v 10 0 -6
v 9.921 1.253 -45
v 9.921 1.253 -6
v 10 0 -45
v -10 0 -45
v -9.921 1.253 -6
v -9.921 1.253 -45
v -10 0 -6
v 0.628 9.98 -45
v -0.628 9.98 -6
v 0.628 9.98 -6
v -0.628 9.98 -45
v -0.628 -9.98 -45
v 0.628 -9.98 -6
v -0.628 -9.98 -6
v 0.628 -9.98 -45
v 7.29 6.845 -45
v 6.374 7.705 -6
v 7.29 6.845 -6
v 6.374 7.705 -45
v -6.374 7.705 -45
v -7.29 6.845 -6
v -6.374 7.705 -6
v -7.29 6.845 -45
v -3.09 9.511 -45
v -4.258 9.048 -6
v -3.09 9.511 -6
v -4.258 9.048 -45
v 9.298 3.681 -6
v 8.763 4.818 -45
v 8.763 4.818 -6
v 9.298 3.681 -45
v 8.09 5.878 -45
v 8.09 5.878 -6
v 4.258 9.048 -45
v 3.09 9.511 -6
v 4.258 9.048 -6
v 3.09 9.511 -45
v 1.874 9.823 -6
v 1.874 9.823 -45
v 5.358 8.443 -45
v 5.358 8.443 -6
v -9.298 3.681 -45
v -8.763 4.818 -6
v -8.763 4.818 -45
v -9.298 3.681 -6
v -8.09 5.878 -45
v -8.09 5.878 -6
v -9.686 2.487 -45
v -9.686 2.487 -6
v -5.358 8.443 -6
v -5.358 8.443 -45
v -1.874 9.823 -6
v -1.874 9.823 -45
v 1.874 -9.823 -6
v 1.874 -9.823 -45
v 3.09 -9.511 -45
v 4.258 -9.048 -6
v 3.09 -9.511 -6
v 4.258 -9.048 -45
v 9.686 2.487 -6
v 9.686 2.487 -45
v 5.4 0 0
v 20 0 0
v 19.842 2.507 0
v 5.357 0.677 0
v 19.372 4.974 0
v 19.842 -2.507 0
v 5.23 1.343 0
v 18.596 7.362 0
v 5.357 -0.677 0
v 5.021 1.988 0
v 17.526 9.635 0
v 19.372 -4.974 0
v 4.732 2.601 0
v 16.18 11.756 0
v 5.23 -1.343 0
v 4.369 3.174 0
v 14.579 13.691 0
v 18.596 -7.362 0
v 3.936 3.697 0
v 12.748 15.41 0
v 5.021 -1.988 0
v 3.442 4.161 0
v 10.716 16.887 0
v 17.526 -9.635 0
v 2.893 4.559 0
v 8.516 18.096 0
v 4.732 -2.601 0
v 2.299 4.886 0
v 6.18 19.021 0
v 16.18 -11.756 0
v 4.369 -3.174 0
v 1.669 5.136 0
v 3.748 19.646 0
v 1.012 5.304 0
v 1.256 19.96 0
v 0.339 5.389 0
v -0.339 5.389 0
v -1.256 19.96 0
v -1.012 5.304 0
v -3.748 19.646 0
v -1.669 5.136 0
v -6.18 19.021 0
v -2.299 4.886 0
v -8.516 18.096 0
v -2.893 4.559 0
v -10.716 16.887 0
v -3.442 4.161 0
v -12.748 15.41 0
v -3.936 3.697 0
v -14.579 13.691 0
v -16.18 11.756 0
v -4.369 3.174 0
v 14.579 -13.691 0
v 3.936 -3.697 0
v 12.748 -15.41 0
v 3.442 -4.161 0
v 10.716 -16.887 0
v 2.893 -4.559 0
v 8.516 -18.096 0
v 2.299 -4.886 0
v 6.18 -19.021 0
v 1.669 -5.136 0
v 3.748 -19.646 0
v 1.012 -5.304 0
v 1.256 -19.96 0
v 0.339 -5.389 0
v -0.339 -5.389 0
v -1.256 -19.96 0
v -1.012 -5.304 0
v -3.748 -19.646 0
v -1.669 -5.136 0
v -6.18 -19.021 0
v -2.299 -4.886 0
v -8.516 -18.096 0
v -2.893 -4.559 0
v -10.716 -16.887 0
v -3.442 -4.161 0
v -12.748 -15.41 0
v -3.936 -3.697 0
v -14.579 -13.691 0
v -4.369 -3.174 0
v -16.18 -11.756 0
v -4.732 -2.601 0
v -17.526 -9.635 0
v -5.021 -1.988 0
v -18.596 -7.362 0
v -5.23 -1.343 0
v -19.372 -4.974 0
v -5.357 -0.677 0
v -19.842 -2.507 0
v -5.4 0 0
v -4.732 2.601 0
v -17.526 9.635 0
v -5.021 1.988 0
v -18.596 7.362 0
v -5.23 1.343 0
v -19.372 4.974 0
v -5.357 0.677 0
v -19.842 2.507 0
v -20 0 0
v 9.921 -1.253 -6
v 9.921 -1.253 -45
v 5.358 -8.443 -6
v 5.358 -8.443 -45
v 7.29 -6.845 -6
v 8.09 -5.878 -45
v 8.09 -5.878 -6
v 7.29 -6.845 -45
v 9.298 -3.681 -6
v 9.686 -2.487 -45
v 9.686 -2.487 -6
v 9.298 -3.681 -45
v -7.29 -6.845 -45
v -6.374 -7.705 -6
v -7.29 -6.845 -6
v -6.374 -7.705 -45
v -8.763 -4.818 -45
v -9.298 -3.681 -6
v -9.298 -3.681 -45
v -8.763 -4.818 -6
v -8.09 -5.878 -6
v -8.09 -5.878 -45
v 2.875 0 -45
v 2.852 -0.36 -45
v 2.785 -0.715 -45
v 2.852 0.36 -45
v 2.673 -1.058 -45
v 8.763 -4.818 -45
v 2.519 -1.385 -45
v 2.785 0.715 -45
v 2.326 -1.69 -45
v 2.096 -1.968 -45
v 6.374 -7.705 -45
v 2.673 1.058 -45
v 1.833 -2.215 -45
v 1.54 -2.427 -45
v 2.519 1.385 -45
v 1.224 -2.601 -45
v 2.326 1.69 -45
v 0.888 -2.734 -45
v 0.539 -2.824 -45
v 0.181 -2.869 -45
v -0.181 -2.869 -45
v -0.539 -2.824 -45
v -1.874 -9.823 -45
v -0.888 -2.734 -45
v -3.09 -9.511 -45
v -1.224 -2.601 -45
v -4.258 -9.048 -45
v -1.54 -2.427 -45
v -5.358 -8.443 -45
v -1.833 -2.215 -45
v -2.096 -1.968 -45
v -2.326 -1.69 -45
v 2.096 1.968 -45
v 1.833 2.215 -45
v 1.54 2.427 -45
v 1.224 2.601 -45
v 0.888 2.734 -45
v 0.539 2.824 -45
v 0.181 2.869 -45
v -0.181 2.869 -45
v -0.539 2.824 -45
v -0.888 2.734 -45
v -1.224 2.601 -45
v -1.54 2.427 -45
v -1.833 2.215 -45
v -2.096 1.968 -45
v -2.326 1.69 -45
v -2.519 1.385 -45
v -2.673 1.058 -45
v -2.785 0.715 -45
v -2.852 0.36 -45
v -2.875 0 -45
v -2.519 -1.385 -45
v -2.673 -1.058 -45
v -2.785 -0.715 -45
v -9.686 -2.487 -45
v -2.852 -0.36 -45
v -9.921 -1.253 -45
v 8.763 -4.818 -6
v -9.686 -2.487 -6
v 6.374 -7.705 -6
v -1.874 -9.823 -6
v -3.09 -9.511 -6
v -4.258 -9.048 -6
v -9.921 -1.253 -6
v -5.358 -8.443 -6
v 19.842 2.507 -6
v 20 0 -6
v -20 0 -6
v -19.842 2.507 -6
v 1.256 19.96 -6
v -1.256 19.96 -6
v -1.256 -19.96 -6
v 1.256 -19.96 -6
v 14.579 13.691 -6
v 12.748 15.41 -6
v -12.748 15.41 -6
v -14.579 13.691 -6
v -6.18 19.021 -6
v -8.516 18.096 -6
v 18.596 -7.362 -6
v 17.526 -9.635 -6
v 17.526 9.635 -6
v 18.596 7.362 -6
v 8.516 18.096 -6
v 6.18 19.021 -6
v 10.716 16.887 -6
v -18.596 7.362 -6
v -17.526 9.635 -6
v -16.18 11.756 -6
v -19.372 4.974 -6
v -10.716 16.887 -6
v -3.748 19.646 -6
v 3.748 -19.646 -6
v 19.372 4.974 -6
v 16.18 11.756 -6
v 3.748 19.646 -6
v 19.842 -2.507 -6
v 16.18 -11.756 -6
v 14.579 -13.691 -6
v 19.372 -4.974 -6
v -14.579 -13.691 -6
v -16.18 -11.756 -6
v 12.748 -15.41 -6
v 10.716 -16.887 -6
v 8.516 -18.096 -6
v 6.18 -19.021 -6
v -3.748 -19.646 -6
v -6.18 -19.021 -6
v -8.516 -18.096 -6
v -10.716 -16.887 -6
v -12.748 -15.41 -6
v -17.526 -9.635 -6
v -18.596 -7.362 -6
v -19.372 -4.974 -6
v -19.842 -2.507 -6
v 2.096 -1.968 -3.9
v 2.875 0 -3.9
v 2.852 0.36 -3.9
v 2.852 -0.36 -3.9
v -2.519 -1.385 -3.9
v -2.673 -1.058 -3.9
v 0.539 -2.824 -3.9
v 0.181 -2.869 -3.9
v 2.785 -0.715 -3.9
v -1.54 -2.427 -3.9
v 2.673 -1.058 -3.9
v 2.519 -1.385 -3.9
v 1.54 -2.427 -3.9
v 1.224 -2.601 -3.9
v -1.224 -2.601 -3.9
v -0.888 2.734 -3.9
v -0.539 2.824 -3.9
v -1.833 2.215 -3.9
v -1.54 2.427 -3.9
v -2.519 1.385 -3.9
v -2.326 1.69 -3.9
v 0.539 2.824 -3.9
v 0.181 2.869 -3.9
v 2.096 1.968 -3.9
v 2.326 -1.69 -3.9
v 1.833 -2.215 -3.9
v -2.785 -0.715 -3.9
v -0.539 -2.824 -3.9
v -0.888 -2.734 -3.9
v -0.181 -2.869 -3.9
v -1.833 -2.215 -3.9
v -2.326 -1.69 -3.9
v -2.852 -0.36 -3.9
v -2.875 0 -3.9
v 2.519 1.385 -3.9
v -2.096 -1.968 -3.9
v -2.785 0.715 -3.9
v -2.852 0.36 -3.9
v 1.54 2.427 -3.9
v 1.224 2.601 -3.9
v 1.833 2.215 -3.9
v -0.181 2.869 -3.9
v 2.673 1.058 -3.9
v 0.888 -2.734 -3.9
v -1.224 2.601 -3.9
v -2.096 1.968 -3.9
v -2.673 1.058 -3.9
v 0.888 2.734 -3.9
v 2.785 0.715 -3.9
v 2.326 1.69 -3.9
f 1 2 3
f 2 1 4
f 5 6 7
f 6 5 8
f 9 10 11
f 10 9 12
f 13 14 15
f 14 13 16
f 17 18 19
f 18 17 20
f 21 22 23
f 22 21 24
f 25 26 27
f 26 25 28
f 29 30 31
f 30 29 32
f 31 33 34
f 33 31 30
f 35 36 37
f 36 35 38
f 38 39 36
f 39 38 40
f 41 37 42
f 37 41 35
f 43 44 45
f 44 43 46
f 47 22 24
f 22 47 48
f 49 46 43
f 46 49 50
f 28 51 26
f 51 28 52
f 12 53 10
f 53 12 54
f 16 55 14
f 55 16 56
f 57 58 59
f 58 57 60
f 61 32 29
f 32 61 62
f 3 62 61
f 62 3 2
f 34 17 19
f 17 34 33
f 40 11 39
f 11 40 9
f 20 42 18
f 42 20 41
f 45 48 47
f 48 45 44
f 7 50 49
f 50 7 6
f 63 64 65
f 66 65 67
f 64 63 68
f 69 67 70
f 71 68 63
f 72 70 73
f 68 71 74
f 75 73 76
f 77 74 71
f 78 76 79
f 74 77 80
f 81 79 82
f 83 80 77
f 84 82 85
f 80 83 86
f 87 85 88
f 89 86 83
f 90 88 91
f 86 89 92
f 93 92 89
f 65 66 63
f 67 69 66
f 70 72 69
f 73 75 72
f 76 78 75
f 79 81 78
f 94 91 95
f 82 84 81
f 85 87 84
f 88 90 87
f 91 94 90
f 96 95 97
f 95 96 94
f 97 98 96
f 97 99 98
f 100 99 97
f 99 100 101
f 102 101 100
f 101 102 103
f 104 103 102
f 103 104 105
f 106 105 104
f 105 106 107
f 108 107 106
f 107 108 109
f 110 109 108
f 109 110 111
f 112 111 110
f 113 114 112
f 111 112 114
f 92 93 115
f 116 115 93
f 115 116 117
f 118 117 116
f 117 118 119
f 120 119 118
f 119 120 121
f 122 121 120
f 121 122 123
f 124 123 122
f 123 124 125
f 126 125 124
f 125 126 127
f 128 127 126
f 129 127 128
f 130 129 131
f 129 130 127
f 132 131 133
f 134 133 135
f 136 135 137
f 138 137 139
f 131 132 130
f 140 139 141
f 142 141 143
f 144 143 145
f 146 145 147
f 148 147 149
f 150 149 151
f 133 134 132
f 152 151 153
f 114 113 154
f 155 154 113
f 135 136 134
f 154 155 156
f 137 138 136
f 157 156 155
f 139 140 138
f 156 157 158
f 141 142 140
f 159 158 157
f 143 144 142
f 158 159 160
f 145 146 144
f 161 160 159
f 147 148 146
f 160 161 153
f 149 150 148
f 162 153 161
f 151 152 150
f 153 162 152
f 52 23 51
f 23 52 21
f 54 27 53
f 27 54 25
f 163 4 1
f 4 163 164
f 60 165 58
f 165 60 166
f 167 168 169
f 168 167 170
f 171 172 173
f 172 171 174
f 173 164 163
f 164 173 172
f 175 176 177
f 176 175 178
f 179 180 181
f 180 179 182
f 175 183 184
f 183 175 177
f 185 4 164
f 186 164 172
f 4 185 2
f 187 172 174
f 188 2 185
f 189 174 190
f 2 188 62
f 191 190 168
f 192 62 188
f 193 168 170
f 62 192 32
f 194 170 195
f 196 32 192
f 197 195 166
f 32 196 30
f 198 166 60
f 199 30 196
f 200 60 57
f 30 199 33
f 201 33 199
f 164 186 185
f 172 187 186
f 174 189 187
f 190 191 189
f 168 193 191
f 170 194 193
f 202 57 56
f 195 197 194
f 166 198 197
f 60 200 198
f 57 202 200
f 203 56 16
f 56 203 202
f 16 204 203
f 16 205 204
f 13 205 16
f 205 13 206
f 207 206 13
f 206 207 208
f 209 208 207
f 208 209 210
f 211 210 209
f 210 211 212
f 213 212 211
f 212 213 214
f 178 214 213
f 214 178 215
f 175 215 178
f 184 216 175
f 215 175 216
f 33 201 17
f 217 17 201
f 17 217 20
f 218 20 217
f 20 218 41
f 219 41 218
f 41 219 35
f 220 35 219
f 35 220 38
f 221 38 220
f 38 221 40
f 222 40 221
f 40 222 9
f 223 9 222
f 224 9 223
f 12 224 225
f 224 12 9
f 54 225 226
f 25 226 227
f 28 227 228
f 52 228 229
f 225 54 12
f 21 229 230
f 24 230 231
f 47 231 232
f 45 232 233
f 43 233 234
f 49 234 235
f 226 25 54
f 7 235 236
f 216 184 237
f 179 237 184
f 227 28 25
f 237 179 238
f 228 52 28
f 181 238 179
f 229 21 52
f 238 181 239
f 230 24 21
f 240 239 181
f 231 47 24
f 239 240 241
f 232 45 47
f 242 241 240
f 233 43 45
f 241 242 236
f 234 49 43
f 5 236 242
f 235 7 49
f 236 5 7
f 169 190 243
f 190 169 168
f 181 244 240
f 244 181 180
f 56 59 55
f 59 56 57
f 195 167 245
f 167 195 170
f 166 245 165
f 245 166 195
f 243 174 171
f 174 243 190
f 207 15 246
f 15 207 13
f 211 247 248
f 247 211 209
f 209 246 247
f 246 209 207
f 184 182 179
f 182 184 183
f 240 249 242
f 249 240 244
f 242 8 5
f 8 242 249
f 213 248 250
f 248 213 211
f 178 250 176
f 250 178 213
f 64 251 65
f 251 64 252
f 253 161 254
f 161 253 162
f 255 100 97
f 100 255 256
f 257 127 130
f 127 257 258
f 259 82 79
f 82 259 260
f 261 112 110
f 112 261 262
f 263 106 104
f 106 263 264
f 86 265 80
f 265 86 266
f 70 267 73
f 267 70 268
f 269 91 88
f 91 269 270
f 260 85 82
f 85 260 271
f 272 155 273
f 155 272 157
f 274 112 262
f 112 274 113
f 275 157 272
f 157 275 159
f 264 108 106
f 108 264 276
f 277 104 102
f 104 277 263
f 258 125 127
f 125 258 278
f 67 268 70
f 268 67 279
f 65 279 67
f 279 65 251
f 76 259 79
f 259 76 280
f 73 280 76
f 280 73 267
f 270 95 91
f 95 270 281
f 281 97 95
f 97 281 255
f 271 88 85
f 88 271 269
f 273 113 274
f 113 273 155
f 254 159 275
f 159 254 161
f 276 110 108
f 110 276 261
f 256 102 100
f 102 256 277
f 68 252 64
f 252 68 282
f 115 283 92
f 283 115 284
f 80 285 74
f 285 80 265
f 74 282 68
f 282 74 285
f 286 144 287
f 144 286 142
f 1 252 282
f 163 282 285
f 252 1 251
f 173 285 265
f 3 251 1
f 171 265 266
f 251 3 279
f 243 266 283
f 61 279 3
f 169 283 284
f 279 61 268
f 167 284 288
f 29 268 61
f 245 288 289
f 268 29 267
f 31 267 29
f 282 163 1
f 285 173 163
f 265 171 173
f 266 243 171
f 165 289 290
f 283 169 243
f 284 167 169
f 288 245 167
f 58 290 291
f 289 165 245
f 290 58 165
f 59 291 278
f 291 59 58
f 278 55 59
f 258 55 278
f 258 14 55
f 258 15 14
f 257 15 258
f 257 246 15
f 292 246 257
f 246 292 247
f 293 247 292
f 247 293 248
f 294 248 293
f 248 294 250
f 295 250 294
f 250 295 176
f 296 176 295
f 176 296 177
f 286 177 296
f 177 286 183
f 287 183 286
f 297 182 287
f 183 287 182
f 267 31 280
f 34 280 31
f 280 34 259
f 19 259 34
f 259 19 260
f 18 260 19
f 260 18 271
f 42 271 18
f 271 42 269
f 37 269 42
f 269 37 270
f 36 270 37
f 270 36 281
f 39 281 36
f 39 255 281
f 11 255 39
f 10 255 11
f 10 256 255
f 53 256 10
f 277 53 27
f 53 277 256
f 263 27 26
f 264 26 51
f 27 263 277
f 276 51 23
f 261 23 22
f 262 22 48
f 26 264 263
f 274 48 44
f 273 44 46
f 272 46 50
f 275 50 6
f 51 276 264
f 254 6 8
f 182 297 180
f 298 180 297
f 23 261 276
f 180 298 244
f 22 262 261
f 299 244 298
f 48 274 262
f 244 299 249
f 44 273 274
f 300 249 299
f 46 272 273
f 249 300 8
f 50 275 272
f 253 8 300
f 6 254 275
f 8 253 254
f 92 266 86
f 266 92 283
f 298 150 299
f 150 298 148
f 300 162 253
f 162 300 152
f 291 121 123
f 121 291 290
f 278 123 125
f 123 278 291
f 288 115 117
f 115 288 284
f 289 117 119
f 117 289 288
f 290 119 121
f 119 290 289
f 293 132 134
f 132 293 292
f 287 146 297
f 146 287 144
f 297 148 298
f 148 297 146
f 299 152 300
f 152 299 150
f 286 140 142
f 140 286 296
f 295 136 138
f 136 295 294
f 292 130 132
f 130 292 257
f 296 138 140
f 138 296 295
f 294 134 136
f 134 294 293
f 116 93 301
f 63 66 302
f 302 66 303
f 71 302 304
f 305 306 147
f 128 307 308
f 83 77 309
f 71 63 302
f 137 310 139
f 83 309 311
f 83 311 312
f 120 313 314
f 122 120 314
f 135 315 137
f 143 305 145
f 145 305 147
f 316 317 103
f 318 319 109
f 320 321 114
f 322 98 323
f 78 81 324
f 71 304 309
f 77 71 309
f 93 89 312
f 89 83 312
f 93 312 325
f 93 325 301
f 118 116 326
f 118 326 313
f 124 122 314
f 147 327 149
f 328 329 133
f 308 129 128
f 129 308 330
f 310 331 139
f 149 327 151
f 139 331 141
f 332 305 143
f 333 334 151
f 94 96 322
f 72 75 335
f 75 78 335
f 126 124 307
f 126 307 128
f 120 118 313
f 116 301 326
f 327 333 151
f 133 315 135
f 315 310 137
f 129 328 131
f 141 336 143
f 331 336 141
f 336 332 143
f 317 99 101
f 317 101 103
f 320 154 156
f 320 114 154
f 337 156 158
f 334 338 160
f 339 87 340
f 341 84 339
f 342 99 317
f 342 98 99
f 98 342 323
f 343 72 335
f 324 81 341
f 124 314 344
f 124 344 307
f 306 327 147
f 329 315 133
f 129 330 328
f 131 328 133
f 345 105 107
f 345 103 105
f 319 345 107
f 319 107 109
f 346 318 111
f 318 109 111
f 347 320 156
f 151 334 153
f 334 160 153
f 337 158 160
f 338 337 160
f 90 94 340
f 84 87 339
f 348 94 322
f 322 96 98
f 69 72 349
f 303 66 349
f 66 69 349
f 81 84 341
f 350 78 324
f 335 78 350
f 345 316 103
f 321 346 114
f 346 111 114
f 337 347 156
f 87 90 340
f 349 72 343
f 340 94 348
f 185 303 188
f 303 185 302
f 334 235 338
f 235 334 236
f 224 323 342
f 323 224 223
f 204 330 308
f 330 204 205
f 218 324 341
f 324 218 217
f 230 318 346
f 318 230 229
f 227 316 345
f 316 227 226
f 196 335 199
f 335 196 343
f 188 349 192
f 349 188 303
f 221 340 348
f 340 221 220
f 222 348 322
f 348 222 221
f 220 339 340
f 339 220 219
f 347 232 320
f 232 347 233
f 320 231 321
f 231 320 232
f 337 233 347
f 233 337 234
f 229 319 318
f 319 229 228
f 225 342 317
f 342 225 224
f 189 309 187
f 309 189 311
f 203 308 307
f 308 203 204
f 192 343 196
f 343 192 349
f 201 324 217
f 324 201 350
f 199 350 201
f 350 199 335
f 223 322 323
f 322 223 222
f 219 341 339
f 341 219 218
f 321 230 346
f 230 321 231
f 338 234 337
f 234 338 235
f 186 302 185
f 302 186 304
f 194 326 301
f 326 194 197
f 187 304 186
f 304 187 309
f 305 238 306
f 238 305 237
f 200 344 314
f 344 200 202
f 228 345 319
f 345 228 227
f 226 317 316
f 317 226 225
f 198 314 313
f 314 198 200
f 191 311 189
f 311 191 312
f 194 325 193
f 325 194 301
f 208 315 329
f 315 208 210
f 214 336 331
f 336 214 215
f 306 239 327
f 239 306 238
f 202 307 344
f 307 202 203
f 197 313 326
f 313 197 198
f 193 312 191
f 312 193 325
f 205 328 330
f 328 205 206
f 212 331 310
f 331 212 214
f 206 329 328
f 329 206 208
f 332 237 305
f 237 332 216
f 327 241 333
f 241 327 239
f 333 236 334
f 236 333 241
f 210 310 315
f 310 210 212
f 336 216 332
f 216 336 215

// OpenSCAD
$fn = 50;


difference() {
	union() {
		translate(v = [0, 0, -45.0000000000]) {
			cylinder(h = 45, r = 10.0000000000);
		}
		translate(v = [0, 0, -6.0000000000]) {
			cylinder(h = 6, r = 20.0000000000);
		}
	}
	union() {
		translate(v = [0, 0, 0]) {
			rotate(a = [0, 0, 0]) {
				difference() {
					union() {
						#translate(v = [0, 0, -45.0000000000]) {
							cylinder(h = 45, r = 2.6000000000);
						}
						#translate(v = [0, 0, -3.9000000000]) {
							cylinder(h = 3.9000000000, r = 10.0000000000, r1 = 2.8750000000, r2 = 5.4000000000);
						}
						#translate(v = [0, 0, -45.0000000000]) {
							cylinder(h = 45, r = 2.8750000000);
						}
						#translate(v = [0, 0, -45.0000000000]) {
							cylinder(h = 45, r = 2.6000000000);
						}
					}
					union();
				}
			}
		}
	}
}
